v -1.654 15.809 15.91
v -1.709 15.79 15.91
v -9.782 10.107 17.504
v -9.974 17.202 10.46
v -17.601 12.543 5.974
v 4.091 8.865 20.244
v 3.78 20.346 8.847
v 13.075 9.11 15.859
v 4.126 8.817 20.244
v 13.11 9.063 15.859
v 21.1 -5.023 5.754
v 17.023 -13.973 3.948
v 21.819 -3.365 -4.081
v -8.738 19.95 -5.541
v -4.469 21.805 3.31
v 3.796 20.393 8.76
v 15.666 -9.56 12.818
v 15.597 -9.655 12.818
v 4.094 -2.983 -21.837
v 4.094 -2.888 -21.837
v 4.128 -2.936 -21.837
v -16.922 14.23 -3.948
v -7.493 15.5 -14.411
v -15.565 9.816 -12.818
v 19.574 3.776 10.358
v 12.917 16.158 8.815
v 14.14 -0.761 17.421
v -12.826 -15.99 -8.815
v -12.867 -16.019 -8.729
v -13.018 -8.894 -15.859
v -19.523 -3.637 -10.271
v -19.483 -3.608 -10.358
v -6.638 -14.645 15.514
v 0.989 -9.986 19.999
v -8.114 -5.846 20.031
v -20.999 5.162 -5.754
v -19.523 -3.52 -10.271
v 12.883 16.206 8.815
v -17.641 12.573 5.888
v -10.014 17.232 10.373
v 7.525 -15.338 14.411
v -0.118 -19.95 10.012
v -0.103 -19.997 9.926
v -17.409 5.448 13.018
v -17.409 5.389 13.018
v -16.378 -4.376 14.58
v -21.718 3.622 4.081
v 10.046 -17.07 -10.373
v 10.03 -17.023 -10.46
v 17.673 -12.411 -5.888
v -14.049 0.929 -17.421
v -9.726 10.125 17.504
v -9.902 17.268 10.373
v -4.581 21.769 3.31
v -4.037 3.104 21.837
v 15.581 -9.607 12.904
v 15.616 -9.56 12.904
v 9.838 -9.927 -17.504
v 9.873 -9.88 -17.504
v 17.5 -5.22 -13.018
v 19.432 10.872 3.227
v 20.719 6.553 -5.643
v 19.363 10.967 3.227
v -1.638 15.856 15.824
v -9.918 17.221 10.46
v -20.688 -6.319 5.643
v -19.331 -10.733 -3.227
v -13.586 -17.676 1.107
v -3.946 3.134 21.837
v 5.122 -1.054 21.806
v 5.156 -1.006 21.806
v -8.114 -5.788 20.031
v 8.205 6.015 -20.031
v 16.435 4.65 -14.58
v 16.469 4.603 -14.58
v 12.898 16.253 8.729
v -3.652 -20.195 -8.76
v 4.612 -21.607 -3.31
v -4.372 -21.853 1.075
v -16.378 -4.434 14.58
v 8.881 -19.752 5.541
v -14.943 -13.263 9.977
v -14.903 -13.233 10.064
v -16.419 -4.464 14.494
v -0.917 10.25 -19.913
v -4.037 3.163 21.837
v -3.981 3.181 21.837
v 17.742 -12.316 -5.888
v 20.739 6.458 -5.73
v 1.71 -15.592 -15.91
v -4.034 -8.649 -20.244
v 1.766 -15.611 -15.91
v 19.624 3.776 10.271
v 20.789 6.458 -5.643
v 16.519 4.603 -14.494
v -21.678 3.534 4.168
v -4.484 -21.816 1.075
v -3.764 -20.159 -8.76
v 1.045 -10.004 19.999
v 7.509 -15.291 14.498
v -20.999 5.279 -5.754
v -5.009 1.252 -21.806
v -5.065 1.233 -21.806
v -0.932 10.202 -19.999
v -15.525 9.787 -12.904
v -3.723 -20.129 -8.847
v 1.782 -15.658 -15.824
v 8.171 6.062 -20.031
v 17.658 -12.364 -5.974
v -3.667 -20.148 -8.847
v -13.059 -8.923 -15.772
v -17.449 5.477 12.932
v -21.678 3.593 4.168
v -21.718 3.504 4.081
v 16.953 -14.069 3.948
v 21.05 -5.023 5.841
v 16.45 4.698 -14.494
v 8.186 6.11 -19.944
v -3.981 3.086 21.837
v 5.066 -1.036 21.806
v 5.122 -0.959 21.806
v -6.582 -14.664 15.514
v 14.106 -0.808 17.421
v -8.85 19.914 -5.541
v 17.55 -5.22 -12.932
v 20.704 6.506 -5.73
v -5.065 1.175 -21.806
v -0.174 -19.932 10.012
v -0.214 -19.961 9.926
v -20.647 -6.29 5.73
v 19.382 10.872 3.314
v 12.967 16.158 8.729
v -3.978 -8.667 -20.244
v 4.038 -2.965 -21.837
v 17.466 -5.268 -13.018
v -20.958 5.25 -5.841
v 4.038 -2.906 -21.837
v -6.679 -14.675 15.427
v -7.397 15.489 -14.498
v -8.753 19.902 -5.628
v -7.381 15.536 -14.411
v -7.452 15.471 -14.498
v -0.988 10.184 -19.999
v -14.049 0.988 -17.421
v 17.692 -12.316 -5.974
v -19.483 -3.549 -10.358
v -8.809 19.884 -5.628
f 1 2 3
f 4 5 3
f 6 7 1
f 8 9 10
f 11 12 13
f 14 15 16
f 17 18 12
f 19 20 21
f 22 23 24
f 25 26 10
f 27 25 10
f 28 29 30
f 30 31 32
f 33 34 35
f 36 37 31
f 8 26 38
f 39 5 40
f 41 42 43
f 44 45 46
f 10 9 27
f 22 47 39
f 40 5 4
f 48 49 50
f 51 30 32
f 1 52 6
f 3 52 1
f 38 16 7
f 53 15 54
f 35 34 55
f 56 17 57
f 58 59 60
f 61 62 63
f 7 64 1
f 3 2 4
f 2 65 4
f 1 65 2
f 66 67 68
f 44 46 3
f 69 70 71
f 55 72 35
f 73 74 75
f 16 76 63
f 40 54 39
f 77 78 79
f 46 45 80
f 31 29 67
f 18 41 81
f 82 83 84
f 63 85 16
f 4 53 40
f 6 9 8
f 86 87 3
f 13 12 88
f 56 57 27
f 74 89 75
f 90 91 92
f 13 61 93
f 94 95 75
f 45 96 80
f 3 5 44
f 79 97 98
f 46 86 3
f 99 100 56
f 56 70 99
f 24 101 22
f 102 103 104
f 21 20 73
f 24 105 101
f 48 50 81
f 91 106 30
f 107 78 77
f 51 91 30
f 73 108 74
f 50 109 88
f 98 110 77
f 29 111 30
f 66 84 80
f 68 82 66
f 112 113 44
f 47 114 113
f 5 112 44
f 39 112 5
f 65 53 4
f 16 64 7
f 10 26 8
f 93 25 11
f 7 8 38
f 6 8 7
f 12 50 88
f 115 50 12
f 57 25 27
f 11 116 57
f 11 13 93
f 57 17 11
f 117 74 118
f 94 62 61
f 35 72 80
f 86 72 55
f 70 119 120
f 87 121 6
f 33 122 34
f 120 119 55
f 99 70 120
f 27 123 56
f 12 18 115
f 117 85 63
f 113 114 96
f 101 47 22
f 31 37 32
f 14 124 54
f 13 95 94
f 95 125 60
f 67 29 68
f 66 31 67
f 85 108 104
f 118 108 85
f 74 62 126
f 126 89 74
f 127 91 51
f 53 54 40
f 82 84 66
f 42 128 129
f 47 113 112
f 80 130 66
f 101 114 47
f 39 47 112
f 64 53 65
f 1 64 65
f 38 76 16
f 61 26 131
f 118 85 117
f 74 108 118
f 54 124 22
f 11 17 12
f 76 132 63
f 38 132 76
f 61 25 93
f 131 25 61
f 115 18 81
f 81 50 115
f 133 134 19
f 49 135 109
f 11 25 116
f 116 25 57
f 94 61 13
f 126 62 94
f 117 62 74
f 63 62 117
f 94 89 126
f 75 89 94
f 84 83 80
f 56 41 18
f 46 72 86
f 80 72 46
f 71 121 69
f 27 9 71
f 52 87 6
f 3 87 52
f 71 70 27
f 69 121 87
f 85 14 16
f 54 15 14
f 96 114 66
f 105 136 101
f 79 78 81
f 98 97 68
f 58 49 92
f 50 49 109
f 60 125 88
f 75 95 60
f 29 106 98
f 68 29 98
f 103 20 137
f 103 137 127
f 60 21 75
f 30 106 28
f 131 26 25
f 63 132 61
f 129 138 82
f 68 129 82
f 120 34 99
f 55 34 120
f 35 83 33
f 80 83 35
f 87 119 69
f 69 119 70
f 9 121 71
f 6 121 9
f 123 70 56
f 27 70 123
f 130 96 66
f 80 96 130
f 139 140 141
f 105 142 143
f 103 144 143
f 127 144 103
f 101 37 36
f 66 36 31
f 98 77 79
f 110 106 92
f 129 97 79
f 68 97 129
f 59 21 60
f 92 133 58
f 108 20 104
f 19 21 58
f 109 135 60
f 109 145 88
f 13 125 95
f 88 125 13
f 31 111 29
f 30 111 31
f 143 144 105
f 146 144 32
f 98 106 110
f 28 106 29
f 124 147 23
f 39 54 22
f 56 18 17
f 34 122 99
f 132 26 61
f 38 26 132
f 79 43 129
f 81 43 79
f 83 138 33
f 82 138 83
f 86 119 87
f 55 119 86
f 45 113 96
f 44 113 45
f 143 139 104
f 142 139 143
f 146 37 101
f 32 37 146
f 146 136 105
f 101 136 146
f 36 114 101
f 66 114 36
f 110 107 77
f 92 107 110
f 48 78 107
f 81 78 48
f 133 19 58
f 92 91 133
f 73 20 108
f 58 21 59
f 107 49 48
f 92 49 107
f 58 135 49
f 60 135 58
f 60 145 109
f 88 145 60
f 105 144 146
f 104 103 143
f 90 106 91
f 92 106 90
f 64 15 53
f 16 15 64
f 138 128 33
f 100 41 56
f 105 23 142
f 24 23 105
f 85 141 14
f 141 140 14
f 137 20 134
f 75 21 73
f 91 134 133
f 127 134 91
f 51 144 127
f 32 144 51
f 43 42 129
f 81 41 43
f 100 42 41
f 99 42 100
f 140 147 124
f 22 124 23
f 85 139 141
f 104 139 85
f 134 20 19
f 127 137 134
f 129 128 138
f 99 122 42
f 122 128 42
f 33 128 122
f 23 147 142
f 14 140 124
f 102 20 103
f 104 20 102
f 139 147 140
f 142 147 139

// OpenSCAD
// Auto-generated OpenSCAD file

    inner_points = 10*[[1.6419395506328012, 0.4602929851836759, -1.4493631210210838], [-2.163745004596259, 0.35631876074276486, 0.40811536788318015], [1.7450099255654523, -0.5220418917143825, -1.2931751335159007], [-2.060674629663608, -0.6260161161552936, 0.5643033553883631], [2.0688511081140133, 0.6458077645062935, -0.5643033553883631], [-1.736833447115047, 0.5418335400653824, 1.2931751335159007], [2.171921483046664, -0.33652711239176486, -0.40811536788318015], [-1.633763072182396, -0.4405013368326759, 1.4493631210210838], [-0.5024600091989292, 0.12040914704172646, -2.1719262545002076], [-1.40086026515404, 0.0958641621658513, -1.7334350643752123], [-0.39938963426627816, -0.861925729856332, -2.0157382669950246], [-1.297789890221389, -0.8864707147322072, -1.5772470768700293], [1.3059663686717942, 0.9062623630832071, 1.5772470768700293], [0.4075661127166832, 0.8817173782073319, 2.0157382669950246], [1.4090367436044453, -0.07607251381485132, 1.7334350643752123], [0.5106364876493342, -0.10061749869072649, 2.1719262545002076], [-0.876874224833509, 1.9854845996807855, -0.5540957539242841], [0.45813914580270193, -2.151207730652403, -0.3309640117084364], [-0.4402611101524089, -2.175752715528278, 0.10752717841655868], [-0.4499626673522969, 2.170999379003403, 0.3309640117084364], [0.885050703283914, -1.9656929513297854, 0.5540957539242841], [-0.01334955267119673, -1.9902379362056606, 0.9925869440492793], [-1.7560539639518336, 1.2513865774351467, 0.5887852848583058], [1.7642304424022388, -1.2315949290841466, -0.5887852848583058], [-1.4862122191449578, -1.3203995186184145, 0.9976907447813188], [0.40781917944265544, -0.29357376199763685, -2.1750805768244144], [-1.94422322614943, -0.3578333666560299, -1.0270957373097849], [1.9523997045998354, 0.3776250150070299, 1.0270957373097849], [-0.3996427009922504, 0.31336541034863685, 2.1750805768244144], [-0.7412023044825446, 1.5441143118102854, -1.4411049979648374], [-0.368290184743018, -2.0100066611413343, -0.8760115505366415], [0.37646666319342303, 2.0297983094923344, 0.8760115505366415], [0.7493787829329497, -1.5243226634592852, 1.4411049979648374], [0.8155102200870809, 0.6014940546947446, -1.9944106598492888], [-2.091774079186868, 0.5220648151297087, -0.57542336107002], [0.9822815899613055, -0.987957164460758, -1.741693187431459], [-1.9250027093126436, -1.0673864040257937, -0.3227058886521901], [1.9331791877630489, 1.0871780523767938, 0.3227058886521901], [-0.9741051115109005, 1.007748812811758, 1.741693187431459], [2.0999505576372735, -0.5022731667787088, 0.57542336107002], [-0.8073337416366758, -0.5817024063437447, 1.9944106598492888], [-0.09476896855450376, 1.0154769637341081, -1.9912563375250816], [-1.5484111181914781, 0.97576234395159, -1.2817626881354474], [0.17507277625237197, -1.5563091323194531, -1.5823508776020687], [-1.2785693733846024, -1.5960237521019711, -0.8728572282124344], [1.2867458518350077, 1.6158154004529712, 0.8728572282124344], [-0.16689629780196688, 1.5761007806704532, 1.5823508776020687], [1.5565875966418834, -0.9559706956005901, 1.2817626881354474], [0.10294544700490885, -0.9956853153831081, 1.9912563375250816], [-1.6840830385424423, 1.4171326318220903, -0.3947534440948942], [1.001502106798092, -1.6975102018305217, -1.0373033387738637], [-1.3505402987939932, -1.761769806488915, 0.11068150074076566], [-0.9933256283476869, 1.7173018501815218, 1.0373033387738637], [1.6922595169928476, -1.3973409834710901, 0.3947534440948942], [-0.659782888599238, -1.4616005881294833, 1.5427382836095238]];

    outer_points = 10*[[-1.4180906408512854, 0.0017142914815234112, 1.7248431734608507], [0.42024133545743264, -0.9747819964248692, -1.9645012743489607], [-1.3152829421925452, 0.9747819964248692, 1.5185186264656285], [0.5230490341161731, -0.0017142914815234112, -2.1708258213441827], [-0.5230490341161731, 0.0017142914815234112, 2.1708258213441827], [1.3152829421925452, -0.9747819964248692, -1.5185186264656285], [-0.42024133545743264, 0.9747819964248692, 1.9645012743489607], [1.4180906408512854, -0.0017142914815234112, -1.7248431734608507], [-2.16411804954985, -0.3712741006106156, -0.40597609206469265], [-1.73014673792946, -0.6017936043327301, -1.276912174159233], [-2.06131035089111, 0.6017936043327301, -0.6123006390599148], [-1.6273390392707197, 0.3712741006106156, -1.4832367211544553], [1.6273390392707197, -0.3712741006106156, 1.4832367211544553], [2.06131035089111, -0.6017936043327301, 0.6123006390599148], [1.73014673792946, 0.6017936043327301, 1.276912174159233], [2.16411804954985, 0.3712741006106156, 0.40597609206469265], [-0.4482853476217299, -2.176250224285918, -0.22145696173963106], [-0.44675625911338257, 2.176250224285918, -0.22452568614370114], [-0.012784947492992194, 1.9457307205638033, -1.0954617682382417], [0.44675625911338257, -2.176250224285918, 0.22452568614370114], [0.4482853476217299, 2.176250224285918, 0.22145696173963106], [0.8822566592421203, 1.9457307205638033, -0.6494791203549095], [0.6504844530956028, -1.6907758622164506, -1.3054558351499], [-0.6504844530956028, 1.6907758622164506, 1.3054558351499], [0.9196385024893416, 0.8567484626800828, -1.845620511896816], [-2.187221299238754, 0.30175394790712673, 0.33327994325880184], [-1.0510696552741998, -0.30175394790712673, -1.9468603216933742], [1.0510696552741998, 0.30175394790712673, 1.9468603216933742], [2.187221299238754, -0.30175394790712673, -0.33327994325880184], [-1.3576055479151603, -1.7602960149199394, -0.21055425340455092], [-0.985643799862681, 1.7602960149199394, -0.9570434771466892], [0.985643799862681, -1.7602960149199394, 0.9570434771466892], [1.3576055479151603, 1.7602960149199394, 0.21055425340455092], [-1.9569781816005838, -0.4142399178844547, 0.9923253824578624], [-0.5526175169122562, -1.1602167020687328, -1.8260829832574081], [-1.790631830865585, 1.1602167020687328, 0.658485252706168], [-0.38627116617725754, 0.4142399178844547, -2.1599231130091026], [0.38627116617725754, -0.4142399178844547, 2.1599231130091026], [1.790631830865585, -1.1602167020687328, -0.658485252706168], [0.5526175169122562, 1.1602167020687328, 1.8260829832574081], [1.9569781816005838, 0.4142399178844547, -0.9923253824578624], [-1.9338749319116801, -1.0872679664021971, 0.2530693471343679], [-1.2316945995675164, -1.4602563584943362, -1.1561348357232673], [-1.6647208825179411, 1.4602563584943362, -0.28709532961254836], [-0.9625405501737774, 1.0872679664021971, -1.6962995124701836], [0.9625405501737774, -1.0872679664021971, 1.6962995124701836], [1.6647208825179411, -1.4602563584943362, 0.28709532961254836], [1.2316945995675164, 1.4602563584943362, 1.1561348357232673], [1.9338749319116801, 1.0872679664021971, -0.2530693471343679], [-0.322374399274086, -1.8762105678603143, -1.1670375440583476], [-1.1258333417686428, 1.8762105678603143, 0.4454224613904398], [0.010318302195911455, 1.2727026720460608, -1.8347178035617362], [1.1258333417686428, -1.8762105678603143, -0.4454224613904398], [0.322374399274086, 1.8762105678603143, 1.1670375440583476], [1.4585260432386402, 1.2727026720460608, -1.1131027208938282]];

    // Convex hull for inner set (I)
    module inner_hull() {
        hull() {
            for (p = inner_points) {
                translate(p) sphere(r=0.1);
            }
        }
    }

    // Convex hull for outer set (O) minus inner hull (O \ I)
    module outer_minus_inner() {
        difference() {
            hull() {
                for (p = outer_points) {
                    translate(p) sphere(r=0.1);
                }
            }
            inner_hull(); // Subtract inner hull
        }
    }

    // Convex hull for outer set (O) minus all translated inner hulls
    module outer_minus_AllTranslationInner() {
        difference() {
            hull() {
                for (p = outer_points) {
                    translate(p) sphere(r=0.1);
                }
            }
            hull() {
                translate([0,0,50]) inner_hull();
                translate([0,0,-50]) inner_hull();
            }; // Subtract translated inner hulls
        }
    }

    // Difference between outer_minus_inner and outer_minus_AllTranslationInner
    module outer_minus_inner_diff() {
        difference() {
            // Outer minus inner
            difference() {
                hull() {
                    for (p = outer_points) {
                        translate(p) sphere(r=0.1);
                    }
                }
                inner_hull();
            }

            // Subtract Outer minus AllTranslationInner
            difference() {
                hull() {
                    for (p = outer_points) {
                        translate(p) sphere(r=0.1);
                    }
                }
                hull() {
                    translate([0,0,50]) inner_hull();
                    translate([0,0,-50]) inner_hull();
                };
            }
        }
    }

    // Rendering all with colors applied
    color([1, 0, 0, 0.5]) inner_hull(); // Transparent red
    
